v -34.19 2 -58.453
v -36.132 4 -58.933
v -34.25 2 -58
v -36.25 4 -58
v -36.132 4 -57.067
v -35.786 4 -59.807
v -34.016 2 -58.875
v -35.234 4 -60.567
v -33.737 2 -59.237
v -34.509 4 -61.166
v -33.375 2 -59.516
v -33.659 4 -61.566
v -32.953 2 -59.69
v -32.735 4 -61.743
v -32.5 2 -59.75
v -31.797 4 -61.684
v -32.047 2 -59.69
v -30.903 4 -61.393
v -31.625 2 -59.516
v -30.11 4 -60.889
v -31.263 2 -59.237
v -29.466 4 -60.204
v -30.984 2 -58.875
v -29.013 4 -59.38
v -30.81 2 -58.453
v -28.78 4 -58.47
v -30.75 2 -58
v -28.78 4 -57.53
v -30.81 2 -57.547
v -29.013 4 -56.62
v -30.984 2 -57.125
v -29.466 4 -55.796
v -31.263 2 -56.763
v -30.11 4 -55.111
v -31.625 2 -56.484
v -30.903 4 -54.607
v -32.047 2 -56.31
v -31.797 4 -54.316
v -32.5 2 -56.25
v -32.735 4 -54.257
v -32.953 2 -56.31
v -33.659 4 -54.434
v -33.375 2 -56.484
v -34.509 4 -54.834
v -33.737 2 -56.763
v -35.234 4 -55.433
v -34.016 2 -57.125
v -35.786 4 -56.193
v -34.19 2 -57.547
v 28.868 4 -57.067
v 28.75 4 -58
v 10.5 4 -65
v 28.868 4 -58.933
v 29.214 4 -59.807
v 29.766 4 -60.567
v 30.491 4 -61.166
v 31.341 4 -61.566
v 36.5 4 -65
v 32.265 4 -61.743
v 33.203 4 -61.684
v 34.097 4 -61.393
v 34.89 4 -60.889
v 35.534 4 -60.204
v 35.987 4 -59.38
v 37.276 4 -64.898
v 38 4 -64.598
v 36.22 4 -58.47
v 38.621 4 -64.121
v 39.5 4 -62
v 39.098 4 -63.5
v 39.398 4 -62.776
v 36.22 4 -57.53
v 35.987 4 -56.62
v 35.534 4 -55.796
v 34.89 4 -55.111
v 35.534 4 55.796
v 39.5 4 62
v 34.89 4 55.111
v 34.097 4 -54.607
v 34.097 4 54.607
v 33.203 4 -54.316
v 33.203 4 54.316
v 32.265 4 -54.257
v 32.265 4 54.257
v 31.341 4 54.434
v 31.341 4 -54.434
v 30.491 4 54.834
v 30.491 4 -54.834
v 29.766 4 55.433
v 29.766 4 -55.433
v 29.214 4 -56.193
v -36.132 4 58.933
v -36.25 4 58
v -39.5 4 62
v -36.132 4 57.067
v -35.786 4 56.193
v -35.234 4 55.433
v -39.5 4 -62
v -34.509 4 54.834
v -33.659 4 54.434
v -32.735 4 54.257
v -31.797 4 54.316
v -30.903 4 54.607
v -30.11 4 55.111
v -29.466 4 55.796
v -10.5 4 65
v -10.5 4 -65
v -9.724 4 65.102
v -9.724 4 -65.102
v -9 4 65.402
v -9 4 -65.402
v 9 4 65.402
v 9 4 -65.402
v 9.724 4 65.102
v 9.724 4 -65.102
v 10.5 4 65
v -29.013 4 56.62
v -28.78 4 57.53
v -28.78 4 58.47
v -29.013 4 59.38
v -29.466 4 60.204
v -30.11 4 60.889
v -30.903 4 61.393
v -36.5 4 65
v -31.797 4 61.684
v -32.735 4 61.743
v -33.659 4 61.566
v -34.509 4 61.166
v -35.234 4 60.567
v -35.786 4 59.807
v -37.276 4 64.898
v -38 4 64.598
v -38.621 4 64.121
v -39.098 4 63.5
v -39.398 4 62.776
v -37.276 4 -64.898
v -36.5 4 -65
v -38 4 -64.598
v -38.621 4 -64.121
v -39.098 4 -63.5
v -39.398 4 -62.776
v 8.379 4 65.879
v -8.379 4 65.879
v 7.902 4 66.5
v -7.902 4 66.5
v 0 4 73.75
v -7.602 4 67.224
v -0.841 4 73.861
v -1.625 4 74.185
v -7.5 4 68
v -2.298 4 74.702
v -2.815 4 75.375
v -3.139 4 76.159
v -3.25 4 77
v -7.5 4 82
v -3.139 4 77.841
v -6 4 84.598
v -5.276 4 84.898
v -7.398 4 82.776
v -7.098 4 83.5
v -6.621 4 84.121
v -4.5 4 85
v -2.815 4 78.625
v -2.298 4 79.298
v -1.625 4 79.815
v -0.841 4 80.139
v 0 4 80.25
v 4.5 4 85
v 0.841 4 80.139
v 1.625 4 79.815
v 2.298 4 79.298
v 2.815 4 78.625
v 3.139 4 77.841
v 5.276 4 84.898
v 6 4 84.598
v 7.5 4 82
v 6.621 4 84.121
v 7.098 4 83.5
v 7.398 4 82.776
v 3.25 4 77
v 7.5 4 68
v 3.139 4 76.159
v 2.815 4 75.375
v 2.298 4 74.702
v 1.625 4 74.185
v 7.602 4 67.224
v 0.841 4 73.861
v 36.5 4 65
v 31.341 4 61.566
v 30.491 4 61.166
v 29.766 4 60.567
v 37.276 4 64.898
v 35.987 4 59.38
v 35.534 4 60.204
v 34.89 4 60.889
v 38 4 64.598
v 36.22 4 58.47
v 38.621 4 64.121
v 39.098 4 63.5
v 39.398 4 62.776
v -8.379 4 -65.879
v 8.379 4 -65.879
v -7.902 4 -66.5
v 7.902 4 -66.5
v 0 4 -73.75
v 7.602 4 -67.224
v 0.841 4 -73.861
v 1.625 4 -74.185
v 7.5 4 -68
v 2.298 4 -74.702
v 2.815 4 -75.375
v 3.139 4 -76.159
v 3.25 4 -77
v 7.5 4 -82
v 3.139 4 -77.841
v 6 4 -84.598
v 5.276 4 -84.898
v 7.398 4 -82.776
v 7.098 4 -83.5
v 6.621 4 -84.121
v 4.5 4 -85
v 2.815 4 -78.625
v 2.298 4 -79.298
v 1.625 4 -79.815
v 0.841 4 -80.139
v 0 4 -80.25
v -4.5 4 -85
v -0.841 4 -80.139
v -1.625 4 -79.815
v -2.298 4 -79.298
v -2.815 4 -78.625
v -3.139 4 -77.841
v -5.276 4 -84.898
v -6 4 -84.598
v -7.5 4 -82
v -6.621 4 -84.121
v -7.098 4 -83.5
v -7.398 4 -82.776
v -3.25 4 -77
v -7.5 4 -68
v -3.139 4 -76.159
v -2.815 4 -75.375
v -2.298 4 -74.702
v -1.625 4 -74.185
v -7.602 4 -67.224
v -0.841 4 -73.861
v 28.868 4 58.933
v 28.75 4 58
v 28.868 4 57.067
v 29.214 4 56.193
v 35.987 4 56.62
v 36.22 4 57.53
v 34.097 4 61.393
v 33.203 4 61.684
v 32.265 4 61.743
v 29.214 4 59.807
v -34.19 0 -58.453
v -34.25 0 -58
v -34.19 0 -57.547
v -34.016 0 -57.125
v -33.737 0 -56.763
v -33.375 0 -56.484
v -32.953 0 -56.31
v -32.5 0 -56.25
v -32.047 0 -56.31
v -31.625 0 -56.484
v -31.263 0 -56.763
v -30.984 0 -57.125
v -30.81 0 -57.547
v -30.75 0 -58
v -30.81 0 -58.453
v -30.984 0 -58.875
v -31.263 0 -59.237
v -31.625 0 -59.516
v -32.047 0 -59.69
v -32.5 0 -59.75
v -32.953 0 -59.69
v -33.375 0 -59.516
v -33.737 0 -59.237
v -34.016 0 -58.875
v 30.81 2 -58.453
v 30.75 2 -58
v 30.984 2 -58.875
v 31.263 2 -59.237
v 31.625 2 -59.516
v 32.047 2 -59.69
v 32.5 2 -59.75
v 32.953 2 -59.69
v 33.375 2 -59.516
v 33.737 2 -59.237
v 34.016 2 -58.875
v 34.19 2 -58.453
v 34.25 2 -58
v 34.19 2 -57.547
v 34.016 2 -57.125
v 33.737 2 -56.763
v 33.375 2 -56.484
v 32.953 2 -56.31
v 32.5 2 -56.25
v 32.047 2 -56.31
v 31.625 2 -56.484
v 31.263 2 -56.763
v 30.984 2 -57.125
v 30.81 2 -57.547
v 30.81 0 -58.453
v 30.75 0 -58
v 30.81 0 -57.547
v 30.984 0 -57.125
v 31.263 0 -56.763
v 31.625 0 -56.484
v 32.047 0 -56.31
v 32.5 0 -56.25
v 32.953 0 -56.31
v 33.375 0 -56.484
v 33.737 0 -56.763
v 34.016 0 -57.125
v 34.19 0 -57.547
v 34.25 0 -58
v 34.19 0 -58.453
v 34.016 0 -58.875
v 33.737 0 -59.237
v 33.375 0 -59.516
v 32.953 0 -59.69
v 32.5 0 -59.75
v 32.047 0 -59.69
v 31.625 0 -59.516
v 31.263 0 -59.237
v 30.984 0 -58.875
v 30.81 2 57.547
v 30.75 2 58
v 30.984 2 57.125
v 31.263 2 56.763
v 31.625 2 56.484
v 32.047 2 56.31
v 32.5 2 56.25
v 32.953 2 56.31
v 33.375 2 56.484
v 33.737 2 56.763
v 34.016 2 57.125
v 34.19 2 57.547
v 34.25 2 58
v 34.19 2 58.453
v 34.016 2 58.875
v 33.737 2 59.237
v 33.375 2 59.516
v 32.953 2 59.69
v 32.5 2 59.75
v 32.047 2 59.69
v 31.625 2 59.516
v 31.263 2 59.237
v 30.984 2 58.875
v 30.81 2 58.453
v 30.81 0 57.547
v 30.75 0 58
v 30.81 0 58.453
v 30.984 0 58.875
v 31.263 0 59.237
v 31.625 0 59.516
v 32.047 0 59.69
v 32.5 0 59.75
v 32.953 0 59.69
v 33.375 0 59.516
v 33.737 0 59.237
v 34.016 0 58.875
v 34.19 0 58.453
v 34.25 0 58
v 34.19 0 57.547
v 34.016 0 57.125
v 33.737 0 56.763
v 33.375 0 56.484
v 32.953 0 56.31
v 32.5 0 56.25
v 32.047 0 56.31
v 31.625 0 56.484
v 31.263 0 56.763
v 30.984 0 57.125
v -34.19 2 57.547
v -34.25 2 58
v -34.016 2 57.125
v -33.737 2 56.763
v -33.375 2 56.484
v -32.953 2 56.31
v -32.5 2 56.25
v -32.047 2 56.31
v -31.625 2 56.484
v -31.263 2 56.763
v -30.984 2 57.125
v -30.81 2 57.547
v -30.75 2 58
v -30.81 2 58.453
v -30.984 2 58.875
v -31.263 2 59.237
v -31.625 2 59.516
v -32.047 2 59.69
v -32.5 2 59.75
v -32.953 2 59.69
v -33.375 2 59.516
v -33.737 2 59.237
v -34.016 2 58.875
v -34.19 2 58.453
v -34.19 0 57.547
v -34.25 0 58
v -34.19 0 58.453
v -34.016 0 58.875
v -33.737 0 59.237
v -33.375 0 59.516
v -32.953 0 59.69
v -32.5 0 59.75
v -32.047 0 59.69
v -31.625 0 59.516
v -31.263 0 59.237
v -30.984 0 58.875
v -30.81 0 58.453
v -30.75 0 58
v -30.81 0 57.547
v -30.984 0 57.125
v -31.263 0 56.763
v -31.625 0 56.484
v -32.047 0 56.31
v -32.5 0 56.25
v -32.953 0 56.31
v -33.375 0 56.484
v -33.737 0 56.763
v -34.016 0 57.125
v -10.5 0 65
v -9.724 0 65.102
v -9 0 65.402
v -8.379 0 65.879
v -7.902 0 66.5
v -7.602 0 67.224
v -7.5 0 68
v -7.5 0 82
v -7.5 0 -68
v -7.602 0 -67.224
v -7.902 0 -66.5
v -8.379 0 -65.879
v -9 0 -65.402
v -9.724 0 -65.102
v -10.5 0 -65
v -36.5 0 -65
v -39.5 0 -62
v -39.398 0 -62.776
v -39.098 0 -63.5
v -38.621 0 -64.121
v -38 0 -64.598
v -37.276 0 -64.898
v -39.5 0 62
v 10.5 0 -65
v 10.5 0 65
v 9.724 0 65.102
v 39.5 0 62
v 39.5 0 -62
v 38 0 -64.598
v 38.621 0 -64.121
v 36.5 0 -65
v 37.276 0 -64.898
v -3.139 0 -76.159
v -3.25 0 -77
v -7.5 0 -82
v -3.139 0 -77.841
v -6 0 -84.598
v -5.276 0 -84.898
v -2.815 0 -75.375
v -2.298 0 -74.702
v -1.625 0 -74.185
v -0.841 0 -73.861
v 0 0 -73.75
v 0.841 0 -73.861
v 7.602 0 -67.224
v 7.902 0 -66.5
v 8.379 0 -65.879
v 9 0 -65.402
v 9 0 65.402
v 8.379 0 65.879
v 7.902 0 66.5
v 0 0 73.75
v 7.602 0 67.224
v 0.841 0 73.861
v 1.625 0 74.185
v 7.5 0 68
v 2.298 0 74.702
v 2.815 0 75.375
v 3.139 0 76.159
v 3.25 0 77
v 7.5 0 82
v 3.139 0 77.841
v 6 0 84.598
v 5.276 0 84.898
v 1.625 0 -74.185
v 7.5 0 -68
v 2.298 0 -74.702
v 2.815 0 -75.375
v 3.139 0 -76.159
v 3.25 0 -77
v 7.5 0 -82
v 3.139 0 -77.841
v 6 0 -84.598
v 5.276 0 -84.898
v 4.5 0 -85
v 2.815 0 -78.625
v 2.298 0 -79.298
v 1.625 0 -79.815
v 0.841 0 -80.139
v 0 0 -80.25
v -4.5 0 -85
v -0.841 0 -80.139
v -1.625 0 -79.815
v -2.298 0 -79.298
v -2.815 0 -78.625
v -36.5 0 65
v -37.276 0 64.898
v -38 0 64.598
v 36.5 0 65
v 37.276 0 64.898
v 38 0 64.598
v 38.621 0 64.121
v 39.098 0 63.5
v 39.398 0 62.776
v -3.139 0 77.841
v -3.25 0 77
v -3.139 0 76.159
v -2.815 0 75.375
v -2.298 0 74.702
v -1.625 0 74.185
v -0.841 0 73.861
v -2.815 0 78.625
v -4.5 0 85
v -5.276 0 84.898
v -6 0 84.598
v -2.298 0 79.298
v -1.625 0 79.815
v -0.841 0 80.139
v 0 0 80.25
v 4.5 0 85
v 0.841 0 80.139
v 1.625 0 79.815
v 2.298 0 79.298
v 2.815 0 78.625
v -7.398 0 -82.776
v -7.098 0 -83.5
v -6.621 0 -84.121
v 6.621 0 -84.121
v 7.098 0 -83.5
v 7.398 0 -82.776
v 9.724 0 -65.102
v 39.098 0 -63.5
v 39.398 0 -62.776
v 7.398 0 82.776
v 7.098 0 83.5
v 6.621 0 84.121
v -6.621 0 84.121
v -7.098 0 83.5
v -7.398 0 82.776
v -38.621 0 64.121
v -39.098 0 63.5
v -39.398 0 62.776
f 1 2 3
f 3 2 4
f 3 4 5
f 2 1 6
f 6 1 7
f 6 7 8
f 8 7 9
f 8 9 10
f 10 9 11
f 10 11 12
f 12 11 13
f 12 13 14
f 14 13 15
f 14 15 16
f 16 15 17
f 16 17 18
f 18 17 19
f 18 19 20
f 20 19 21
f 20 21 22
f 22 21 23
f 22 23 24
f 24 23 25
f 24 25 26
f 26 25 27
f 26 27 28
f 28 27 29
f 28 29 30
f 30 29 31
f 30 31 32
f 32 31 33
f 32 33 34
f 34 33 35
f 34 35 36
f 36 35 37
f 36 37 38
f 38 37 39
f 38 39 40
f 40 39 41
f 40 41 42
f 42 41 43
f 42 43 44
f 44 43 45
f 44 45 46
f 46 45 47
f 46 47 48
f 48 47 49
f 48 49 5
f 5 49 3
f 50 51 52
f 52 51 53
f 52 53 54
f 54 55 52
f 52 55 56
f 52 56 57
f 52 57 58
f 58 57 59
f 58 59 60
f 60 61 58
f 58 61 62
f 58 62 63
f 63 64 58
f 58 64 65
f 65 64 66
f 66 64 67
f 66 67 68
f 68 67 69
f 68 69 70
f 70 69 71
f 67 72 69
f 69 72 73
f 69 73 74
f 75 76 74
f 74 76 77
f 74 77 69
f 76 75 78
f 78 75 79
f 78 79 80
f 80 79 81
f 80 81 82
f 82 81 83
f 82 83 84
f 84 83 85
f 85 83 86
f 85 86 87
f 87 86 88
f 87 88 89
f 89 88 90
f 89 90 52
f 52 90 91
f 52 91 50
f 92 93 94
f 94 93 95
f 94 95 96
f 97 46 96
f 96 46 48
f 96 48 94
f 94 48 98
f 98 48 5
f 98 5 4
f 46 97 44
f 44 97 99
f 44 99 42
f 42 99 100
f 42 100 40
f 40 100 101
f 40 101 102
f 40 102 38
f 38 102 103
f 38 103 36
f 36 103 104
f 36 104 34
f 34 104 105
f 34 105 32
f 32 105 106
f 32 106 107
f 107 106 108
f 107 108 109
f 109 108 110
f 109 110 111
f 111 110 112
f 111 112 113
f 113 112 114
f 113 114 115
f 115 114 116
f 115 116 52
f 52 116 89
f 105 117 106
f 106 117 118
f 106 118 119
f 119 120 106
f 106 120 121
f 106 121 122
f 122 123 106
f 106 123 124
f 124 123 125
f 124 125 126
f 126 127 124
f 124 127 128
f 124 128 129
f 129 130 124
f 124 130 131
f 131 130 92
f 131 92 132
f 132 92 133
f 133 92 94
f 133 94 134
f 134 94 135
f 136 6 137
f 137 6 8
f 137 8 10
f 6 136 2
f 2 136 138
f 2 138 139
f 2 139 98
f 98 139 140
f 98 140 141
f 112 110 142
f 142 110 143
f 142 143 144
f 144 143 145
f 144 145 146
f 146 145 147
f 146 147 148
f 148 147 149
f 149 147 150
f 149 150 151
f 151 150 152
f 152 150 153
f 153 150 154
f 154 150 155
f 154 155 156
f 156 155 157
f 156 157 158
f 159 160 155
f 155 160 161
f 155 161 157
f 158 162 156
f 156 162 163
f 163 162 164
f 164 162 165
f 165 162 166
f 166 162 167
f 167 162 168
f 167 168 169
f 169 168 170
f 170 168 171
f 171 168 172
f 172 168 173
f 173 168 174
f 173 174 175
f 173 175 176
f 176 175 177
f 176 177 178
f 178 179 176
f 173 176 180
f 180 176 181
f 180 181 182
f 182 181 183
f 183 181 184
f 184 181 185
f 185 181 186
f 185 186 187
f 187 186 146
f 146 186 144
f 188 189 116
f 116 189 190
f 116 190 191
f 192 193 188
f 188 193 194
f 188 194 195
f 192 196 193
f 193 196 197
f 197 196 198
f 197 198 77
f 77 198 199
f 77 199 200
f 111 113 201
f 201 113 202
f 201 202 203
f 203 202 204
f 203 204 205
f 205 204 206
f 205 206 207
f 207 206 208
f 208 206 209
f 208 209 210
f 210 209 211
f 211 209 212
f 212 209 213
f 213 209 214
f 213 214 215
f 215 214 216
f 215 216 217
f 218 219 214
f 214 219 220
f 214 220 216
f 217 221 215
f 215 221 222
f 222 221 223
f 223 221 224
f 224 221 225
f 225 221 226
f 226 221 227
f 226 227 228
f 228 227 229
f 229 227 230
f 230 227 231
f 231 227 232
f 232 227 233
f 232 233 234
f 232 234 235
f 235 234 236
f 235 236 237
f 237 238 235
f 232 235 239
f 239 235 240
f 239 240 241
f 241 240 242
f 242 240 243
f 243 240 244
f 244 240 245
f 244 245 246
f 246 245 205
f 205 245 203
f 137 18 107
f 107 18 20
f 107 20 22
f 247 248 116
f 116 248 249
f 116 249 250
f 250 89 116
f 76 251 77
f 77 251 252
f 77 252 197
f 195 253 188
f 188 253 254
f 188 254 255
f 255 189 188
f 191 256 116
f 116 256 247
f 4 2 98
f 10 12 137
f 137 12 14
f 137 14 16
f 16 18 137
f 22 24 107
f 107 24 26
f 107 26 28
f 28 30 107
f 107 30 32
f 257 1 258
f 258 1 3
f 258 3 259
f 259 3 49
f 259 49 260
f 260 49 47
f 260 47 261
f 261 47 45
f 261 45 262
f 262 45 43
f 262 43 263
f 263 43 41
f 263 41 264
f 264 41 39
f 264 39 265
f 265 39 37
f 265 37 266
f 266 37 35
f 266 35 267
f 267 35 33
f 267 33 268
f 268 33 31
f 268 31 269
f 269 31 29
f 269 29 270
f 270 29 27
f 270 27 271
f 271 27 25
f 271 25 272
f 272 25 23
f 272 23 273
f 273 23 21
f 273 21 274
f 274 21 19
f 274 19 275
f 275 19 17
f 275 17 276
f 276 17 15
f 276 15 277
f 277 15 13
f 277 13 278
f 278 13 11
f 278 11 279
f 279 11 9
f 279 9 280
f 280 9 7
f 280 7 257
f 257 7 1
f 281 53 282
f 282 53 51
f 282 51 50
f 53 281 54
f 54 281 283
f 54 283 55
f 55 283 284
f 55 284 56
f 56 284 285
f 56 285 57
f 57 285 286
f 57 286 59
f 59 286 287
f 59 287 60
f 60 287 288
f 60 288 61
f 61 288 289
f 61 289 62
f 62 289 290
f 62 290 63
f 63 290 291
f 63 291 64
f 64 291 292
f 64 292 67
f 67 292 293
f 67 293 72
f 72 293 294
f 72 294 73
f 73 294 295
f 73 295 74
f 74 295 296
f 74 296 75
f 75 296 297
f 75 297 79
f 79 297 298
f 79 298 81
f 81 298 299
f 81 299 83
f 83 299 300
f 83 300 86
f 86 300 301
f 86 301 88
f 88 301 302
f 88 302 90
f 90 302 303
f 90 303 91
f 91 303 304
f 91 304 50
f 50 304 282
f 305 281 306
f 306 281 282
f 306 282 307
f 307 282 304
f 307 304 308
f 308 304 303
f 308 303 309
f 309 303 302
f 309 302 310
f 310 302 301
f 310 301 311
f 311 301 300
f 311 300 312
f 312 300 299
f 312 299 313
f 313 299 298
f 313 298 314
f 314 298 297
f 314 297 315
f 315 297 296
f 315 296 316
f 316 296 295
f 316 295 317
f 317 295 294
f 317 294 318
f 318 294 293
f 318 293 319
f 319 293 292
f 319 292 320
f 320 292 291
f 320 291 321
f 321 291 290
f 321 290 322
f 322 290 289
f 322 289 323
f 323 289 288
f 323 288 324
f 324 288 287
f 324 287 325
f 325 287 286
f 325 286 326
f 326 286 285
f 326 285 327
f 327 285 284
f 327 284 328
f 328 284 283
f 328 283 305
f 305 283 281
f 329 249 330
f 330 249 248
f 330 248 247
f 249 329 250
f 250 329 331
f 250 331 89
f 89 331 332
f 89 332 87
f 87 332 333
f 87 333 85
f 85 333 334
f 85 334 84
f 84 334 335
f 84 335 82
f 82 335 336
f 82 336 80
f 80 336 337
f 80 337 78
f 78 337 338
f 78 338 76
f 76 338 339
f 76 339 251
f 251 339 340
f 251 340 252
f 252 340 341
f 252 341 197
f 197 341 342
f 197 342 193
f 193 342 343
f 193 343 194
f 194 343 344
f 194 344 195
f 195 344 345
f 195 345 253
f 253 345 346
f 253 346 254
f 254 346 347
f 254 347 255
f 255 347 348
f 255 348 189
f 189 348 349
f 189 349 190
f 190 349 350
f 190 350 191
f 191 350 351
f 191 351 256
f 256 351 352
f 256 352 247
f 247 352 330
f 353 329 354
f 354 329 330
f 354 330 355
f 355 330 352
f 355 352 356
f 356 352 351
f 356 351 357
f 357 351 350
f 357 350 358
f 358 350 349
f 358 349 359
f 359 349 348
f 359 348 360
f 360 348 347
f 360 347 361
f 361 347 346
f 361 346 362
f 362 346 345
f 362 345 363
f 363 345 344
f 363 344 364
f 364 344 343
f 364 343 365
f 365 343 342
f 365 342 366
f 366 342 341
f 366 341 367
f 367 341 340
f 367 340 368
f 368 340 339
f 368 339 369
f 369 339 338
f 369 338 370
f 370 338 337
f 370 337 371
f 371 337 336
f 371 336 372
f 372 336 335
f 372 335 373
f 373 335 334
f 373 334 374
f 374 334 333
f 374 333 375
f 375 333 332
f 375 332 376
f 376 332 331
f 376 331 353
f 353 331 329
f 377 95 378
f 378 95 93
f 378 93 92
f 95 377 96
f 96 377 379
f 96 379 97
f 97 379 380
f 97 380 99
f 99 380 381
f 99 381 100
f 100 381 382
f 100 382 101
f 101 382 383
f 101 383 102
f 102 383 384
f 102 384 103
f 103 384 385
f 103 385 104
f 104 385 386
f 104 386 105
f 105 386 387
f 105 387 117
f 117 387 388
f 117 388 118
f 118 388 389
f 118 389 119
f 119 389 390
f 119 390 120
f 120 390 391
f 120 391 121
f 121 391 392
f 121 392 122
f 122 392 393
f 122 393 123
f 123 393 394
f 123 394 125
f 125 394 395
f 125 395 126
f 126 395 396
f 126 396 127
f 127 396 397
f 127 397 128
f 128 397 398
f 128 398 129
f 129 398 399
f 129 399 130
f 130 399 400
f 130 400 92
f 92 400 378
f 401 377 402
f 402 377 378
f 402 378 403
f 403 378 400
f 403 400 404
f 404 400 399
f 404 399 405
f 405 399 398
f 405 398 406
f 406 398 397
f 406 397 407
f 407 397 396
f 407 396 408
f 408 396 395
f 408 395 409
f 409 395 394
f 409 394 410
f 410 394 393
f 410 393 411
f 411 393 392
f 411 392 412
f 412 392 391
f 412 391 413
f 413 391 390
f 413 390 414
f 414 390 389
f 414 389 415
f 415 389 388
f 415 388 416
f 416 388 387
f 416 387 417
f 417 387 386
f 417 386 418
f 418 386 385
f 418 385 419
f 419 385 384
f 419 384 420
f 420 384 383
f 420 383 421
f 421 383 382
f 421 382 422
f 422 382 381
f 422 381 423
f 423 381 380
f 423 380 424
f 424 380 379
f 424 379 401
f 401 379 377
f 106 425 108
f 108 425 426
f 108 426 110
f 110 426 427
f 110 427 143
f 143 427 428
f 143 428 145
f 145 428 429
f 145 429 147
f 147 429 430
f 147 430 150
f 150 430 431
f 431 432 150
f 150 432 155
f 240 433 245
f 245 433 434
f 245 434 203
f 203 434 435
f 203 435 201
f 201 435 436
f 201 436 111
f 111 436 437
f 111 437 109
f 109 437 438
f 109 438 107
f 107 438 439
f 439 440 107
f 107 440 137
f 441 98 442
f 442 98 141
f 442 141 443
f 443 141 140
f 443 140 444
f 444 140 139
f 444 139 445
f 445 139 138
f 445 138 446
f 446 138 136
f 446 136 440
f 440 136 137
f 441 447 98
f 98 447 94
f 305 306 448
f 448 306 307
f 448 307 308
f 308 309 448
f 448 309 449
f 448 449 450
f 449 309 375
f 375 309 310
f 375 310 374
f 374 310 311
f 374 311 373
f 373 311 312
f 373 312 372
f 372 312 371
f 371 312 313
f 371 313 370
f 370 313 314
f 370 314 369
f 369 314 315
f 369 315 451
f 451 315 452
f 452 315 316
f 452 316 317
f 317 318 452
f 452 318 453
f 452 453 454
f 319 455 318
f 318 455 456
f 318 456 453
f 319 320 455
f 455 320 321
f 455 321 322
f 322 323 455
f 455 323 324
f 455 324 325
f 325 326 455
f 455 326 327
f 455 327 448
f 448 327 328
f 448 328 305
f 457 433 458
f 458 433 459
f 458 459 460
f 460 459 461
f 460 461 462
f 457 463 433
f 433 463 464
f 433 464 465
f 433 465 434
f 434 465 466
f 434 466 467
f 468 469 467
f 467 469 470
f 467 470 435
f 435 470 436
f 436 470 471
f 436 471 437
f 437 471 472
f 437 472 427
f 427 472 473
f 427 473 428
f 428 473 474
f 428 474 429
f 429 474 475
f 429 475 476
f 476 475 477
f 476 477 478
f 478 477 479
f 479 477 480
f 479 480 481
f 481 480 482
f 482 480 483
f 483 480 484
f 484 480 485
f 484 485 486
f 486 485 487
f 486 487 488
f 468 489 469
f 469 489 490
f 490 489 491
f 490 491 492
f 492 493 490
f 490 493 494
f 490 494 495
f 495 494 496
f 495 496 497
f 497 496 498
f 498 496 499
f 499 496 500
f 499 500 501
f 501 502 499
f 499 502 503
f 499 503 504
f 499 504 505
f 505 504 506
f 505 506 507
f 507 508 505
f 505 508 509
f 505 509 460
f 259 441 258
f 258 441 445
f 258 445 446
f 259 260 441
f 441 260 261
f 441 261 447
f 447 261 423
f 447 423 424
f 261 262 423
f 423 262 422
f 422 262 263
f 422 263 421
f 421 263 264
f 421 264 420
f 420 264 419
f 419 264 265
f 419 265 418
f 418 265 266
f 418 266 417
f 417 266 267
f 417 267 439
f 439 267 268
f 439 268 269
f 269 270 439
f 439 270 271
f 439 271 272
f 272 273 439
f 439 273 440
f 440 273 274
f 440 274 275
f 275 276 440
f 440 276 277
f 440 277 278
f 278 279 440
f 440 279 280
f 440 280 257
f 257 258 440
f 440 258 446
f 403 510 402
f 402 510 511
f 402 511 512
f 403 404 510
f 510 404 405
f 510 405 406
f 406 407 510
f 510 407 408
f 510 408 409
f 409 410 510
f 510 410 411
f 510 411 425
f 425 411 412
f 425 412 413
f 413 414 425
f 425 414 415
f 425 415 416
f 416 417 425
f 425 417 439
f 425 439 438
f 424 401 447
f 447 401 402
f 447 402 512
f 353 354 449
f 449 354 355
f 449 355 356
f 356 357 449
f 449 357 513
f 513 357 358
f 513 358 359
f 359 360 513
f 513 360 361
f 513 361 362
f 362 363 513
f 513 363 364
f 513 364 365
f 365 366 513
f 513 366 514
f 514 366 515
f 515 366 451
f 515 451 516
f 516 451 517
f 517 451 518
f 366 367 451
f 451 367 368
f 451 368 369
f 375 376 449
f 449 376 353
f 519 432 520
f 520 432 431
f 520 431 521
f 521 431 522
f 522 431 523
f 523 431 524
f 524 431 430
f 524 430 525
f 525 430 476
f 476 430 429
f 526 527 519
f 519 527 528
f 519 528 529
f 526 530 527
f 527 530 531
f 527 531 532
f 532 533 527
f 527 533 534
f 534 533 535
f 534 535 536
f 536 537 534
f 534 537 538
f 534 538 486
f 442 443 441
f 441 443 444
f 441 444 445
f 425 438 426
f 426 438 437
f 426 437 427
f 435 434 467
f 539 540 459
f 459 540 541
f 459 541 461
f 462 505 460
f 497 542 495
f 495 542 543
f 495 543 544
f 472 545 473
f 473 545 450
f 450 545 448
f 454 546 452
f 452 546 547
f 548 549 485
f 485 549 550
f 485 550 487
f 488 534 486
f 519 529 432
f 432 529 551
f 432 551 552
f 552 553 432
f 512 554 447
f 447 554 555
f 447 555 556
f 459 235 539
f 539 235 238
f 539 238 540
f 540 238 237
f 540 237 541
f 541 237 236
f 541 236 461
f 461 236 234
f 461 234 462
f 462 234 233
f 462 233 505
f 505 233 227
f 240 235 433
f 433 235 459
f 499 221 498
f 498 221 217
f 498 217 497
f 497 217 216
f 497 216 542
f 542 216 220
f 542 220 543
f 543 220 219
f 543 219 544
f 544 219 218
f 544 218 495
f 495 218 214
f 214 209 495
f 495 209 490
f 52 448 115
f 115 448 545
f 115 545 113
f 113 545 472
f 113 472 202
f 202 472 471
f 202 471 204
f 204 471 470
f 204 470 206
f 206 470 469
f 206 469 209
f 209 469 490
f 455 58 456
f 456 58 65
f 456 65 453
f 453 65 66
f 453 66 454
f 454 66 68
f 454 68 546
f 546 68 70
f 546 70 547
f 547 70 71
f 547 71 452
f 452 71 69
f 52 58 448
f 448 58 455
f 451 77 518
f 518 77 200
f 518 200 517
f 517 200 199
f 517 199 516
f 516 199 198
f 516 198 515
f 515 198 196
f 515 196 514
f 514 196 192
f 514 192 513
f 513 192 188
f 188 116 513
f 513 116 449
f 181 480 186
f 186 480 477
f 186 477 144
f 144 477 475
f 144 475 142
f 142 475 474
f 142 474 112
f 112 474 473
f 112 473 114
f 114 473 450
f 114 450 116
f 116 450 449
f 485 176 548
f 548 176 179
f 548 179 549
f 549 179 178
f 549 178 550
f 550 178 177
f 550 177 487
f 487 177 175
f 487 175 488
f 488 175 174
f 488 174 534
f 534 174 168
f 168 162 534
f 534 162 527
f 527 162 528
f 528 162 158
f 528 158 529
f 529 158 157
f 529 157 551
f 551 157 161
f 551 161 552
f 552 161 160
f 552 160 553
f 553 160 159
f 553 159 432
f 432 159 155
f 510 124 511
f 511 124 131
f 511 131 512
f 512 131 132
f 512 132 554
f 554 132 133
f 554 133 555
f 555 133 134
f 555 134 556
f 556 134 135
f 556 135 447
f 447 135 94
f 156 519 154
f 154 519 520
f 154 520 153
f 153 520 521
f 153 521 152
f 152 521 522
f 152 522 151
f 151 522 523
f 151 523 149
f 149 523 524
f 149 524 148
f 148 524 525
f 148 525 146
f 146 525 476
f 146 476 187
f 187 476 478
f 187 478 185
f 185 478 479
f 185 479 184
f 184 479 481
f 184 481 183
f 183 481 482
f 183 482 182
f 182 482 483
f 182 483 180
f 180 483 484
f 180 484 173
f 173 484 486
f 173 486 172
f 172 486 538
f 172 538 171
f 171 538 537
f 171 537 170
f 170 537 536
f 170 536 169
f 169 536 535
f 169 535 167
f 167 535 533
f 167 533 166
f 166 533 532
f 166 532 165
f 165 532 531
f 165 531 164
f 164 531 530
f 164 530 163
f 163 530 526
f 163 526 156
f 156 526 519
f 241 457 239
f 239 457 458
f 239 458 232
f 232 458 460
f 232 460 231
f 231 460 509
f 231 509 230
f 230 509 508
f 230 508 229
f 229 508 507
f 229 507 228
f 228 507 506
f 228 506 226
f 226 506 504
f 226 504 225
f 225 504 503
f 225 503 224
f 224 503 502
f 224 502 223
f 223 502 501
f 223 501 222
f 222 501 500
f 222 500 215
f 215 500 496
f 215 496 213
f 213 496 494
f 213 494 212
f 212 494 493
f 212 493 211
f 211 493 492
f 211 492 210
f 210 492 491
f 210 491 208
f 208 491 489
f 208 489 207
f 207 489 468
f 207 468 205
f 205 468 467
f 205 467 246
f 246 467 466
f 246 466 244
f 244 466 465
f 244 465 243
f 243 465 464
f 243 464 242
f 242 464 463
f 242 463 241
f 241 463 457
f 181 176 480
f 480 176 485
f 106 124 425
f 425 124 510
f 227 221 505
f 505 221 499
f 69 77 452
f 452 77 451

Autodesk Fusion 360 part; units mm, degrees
sketch "Sketch1" plane through (0, 0, 0) normal (0, 1, 0) x (1, 0, 0)
  line L0 (32.5, 58) -> (-32.5, 58) construction
  line L1 (-32.5, 58) -> (-32.5, -58) construction
  line L2 (-32.5, -58) -> (32.5, -58) construction
  line L3 (32.5, -58) -> (32.5, 58) construction
  line L4 (32.5, 58) -> (-32.5, -58) construction
  line L5 (-32.5, 58) -> (32.5, -58) construction
  circle A0 centre (32.5, 58) radius 1.75
  line L6 (0, 0) -> (0, 14) construction
  line L7 (0, 0) -> (-15, 0) construction
  circle A1 centre (-32.5, 58) radius 1.75
  circle A2 centre (32.5, -58) radius 1.75
  circle A3 centre (-32.5, -58) radius 1.75
  line L8 (39.5, 65) -> (-39.5, 65)
  line L9 (-39.5, 65) -> (-39.5, -65)
  line L10 (-39.5, -65) -> (39.5, -65)
  line L11 (39.5, -65) -> (39.5, 65)
  line L12 (39.5, 65) -> (-39.5, -65) construction
  line L13 (-39.5, 65) -> (39.5, -65) construction
  line L14 (7.5, 85) -> (-7.5, 85)
  line L15 (-7.5, 85) -> (-7.5, 65)
  line L16 (-7.5, 65) -> (7.5, 65)
  line L17 (7.5, 65) -> (7.5, 85)
  line L18 (7.5, 85) -> (-7.5, 65) construction
  line L19 (-7.5, 85) -> (7.5, 65) construction
  circle A4 centre (0, 77) radius 3.25
  line L20 (-7.5, -85) -> (-7.5, -65)
  line L21 (7.5, -85) -> (-7.5, -85)
  line L22 (-7.5, -85) -> (7.5, -65) construction
  circle A5 centre (0, -77) radius 3.25
  line L23 (-7.5, -65) -> (7.5, -65)
  line L24 (7.5, -65) -> (7.5, -85)
  line L25 (7.5, -85) -> (-7.5, -65) construction
  point P0 (0, 75)
  point P1 (0, -75)
  dimension "d1" = 116
  dimension "d2" = 65
  dimension "d3" = 3.5
  dimension "d4" = 7
  dimension "d5" = 7
  dimension "d6" = 20
  dimension "d7" = 15
  dimension "d8" = 6.5
  dimension "d9" = 12
extrude "Extrude1" add sketch "Sketch1" along normal blind 4
fillet "Fillet1" radius 3 12 edges at (-39.5, 2, 65) (-7.5, 2, 85) (7.5, 2, 85) (7.5, 2, 65) (39.5, 2, 65) (39.5, 2, -65) (7.5, 2, -65) (7.5, 2, -85) (-7.5, 2, -85) (-39.5, 2, -65) (-7.5, 2, -65) (-7.5, 2, 65)
chamfer "Chamfer2" distance 2 angle 45 4 edges at (-34.1316, 4, 57.3672) (30.8684, 4, 57.3672) (30.8684, 4, -58.6328) (-34.1316, 4, -58.6328)
